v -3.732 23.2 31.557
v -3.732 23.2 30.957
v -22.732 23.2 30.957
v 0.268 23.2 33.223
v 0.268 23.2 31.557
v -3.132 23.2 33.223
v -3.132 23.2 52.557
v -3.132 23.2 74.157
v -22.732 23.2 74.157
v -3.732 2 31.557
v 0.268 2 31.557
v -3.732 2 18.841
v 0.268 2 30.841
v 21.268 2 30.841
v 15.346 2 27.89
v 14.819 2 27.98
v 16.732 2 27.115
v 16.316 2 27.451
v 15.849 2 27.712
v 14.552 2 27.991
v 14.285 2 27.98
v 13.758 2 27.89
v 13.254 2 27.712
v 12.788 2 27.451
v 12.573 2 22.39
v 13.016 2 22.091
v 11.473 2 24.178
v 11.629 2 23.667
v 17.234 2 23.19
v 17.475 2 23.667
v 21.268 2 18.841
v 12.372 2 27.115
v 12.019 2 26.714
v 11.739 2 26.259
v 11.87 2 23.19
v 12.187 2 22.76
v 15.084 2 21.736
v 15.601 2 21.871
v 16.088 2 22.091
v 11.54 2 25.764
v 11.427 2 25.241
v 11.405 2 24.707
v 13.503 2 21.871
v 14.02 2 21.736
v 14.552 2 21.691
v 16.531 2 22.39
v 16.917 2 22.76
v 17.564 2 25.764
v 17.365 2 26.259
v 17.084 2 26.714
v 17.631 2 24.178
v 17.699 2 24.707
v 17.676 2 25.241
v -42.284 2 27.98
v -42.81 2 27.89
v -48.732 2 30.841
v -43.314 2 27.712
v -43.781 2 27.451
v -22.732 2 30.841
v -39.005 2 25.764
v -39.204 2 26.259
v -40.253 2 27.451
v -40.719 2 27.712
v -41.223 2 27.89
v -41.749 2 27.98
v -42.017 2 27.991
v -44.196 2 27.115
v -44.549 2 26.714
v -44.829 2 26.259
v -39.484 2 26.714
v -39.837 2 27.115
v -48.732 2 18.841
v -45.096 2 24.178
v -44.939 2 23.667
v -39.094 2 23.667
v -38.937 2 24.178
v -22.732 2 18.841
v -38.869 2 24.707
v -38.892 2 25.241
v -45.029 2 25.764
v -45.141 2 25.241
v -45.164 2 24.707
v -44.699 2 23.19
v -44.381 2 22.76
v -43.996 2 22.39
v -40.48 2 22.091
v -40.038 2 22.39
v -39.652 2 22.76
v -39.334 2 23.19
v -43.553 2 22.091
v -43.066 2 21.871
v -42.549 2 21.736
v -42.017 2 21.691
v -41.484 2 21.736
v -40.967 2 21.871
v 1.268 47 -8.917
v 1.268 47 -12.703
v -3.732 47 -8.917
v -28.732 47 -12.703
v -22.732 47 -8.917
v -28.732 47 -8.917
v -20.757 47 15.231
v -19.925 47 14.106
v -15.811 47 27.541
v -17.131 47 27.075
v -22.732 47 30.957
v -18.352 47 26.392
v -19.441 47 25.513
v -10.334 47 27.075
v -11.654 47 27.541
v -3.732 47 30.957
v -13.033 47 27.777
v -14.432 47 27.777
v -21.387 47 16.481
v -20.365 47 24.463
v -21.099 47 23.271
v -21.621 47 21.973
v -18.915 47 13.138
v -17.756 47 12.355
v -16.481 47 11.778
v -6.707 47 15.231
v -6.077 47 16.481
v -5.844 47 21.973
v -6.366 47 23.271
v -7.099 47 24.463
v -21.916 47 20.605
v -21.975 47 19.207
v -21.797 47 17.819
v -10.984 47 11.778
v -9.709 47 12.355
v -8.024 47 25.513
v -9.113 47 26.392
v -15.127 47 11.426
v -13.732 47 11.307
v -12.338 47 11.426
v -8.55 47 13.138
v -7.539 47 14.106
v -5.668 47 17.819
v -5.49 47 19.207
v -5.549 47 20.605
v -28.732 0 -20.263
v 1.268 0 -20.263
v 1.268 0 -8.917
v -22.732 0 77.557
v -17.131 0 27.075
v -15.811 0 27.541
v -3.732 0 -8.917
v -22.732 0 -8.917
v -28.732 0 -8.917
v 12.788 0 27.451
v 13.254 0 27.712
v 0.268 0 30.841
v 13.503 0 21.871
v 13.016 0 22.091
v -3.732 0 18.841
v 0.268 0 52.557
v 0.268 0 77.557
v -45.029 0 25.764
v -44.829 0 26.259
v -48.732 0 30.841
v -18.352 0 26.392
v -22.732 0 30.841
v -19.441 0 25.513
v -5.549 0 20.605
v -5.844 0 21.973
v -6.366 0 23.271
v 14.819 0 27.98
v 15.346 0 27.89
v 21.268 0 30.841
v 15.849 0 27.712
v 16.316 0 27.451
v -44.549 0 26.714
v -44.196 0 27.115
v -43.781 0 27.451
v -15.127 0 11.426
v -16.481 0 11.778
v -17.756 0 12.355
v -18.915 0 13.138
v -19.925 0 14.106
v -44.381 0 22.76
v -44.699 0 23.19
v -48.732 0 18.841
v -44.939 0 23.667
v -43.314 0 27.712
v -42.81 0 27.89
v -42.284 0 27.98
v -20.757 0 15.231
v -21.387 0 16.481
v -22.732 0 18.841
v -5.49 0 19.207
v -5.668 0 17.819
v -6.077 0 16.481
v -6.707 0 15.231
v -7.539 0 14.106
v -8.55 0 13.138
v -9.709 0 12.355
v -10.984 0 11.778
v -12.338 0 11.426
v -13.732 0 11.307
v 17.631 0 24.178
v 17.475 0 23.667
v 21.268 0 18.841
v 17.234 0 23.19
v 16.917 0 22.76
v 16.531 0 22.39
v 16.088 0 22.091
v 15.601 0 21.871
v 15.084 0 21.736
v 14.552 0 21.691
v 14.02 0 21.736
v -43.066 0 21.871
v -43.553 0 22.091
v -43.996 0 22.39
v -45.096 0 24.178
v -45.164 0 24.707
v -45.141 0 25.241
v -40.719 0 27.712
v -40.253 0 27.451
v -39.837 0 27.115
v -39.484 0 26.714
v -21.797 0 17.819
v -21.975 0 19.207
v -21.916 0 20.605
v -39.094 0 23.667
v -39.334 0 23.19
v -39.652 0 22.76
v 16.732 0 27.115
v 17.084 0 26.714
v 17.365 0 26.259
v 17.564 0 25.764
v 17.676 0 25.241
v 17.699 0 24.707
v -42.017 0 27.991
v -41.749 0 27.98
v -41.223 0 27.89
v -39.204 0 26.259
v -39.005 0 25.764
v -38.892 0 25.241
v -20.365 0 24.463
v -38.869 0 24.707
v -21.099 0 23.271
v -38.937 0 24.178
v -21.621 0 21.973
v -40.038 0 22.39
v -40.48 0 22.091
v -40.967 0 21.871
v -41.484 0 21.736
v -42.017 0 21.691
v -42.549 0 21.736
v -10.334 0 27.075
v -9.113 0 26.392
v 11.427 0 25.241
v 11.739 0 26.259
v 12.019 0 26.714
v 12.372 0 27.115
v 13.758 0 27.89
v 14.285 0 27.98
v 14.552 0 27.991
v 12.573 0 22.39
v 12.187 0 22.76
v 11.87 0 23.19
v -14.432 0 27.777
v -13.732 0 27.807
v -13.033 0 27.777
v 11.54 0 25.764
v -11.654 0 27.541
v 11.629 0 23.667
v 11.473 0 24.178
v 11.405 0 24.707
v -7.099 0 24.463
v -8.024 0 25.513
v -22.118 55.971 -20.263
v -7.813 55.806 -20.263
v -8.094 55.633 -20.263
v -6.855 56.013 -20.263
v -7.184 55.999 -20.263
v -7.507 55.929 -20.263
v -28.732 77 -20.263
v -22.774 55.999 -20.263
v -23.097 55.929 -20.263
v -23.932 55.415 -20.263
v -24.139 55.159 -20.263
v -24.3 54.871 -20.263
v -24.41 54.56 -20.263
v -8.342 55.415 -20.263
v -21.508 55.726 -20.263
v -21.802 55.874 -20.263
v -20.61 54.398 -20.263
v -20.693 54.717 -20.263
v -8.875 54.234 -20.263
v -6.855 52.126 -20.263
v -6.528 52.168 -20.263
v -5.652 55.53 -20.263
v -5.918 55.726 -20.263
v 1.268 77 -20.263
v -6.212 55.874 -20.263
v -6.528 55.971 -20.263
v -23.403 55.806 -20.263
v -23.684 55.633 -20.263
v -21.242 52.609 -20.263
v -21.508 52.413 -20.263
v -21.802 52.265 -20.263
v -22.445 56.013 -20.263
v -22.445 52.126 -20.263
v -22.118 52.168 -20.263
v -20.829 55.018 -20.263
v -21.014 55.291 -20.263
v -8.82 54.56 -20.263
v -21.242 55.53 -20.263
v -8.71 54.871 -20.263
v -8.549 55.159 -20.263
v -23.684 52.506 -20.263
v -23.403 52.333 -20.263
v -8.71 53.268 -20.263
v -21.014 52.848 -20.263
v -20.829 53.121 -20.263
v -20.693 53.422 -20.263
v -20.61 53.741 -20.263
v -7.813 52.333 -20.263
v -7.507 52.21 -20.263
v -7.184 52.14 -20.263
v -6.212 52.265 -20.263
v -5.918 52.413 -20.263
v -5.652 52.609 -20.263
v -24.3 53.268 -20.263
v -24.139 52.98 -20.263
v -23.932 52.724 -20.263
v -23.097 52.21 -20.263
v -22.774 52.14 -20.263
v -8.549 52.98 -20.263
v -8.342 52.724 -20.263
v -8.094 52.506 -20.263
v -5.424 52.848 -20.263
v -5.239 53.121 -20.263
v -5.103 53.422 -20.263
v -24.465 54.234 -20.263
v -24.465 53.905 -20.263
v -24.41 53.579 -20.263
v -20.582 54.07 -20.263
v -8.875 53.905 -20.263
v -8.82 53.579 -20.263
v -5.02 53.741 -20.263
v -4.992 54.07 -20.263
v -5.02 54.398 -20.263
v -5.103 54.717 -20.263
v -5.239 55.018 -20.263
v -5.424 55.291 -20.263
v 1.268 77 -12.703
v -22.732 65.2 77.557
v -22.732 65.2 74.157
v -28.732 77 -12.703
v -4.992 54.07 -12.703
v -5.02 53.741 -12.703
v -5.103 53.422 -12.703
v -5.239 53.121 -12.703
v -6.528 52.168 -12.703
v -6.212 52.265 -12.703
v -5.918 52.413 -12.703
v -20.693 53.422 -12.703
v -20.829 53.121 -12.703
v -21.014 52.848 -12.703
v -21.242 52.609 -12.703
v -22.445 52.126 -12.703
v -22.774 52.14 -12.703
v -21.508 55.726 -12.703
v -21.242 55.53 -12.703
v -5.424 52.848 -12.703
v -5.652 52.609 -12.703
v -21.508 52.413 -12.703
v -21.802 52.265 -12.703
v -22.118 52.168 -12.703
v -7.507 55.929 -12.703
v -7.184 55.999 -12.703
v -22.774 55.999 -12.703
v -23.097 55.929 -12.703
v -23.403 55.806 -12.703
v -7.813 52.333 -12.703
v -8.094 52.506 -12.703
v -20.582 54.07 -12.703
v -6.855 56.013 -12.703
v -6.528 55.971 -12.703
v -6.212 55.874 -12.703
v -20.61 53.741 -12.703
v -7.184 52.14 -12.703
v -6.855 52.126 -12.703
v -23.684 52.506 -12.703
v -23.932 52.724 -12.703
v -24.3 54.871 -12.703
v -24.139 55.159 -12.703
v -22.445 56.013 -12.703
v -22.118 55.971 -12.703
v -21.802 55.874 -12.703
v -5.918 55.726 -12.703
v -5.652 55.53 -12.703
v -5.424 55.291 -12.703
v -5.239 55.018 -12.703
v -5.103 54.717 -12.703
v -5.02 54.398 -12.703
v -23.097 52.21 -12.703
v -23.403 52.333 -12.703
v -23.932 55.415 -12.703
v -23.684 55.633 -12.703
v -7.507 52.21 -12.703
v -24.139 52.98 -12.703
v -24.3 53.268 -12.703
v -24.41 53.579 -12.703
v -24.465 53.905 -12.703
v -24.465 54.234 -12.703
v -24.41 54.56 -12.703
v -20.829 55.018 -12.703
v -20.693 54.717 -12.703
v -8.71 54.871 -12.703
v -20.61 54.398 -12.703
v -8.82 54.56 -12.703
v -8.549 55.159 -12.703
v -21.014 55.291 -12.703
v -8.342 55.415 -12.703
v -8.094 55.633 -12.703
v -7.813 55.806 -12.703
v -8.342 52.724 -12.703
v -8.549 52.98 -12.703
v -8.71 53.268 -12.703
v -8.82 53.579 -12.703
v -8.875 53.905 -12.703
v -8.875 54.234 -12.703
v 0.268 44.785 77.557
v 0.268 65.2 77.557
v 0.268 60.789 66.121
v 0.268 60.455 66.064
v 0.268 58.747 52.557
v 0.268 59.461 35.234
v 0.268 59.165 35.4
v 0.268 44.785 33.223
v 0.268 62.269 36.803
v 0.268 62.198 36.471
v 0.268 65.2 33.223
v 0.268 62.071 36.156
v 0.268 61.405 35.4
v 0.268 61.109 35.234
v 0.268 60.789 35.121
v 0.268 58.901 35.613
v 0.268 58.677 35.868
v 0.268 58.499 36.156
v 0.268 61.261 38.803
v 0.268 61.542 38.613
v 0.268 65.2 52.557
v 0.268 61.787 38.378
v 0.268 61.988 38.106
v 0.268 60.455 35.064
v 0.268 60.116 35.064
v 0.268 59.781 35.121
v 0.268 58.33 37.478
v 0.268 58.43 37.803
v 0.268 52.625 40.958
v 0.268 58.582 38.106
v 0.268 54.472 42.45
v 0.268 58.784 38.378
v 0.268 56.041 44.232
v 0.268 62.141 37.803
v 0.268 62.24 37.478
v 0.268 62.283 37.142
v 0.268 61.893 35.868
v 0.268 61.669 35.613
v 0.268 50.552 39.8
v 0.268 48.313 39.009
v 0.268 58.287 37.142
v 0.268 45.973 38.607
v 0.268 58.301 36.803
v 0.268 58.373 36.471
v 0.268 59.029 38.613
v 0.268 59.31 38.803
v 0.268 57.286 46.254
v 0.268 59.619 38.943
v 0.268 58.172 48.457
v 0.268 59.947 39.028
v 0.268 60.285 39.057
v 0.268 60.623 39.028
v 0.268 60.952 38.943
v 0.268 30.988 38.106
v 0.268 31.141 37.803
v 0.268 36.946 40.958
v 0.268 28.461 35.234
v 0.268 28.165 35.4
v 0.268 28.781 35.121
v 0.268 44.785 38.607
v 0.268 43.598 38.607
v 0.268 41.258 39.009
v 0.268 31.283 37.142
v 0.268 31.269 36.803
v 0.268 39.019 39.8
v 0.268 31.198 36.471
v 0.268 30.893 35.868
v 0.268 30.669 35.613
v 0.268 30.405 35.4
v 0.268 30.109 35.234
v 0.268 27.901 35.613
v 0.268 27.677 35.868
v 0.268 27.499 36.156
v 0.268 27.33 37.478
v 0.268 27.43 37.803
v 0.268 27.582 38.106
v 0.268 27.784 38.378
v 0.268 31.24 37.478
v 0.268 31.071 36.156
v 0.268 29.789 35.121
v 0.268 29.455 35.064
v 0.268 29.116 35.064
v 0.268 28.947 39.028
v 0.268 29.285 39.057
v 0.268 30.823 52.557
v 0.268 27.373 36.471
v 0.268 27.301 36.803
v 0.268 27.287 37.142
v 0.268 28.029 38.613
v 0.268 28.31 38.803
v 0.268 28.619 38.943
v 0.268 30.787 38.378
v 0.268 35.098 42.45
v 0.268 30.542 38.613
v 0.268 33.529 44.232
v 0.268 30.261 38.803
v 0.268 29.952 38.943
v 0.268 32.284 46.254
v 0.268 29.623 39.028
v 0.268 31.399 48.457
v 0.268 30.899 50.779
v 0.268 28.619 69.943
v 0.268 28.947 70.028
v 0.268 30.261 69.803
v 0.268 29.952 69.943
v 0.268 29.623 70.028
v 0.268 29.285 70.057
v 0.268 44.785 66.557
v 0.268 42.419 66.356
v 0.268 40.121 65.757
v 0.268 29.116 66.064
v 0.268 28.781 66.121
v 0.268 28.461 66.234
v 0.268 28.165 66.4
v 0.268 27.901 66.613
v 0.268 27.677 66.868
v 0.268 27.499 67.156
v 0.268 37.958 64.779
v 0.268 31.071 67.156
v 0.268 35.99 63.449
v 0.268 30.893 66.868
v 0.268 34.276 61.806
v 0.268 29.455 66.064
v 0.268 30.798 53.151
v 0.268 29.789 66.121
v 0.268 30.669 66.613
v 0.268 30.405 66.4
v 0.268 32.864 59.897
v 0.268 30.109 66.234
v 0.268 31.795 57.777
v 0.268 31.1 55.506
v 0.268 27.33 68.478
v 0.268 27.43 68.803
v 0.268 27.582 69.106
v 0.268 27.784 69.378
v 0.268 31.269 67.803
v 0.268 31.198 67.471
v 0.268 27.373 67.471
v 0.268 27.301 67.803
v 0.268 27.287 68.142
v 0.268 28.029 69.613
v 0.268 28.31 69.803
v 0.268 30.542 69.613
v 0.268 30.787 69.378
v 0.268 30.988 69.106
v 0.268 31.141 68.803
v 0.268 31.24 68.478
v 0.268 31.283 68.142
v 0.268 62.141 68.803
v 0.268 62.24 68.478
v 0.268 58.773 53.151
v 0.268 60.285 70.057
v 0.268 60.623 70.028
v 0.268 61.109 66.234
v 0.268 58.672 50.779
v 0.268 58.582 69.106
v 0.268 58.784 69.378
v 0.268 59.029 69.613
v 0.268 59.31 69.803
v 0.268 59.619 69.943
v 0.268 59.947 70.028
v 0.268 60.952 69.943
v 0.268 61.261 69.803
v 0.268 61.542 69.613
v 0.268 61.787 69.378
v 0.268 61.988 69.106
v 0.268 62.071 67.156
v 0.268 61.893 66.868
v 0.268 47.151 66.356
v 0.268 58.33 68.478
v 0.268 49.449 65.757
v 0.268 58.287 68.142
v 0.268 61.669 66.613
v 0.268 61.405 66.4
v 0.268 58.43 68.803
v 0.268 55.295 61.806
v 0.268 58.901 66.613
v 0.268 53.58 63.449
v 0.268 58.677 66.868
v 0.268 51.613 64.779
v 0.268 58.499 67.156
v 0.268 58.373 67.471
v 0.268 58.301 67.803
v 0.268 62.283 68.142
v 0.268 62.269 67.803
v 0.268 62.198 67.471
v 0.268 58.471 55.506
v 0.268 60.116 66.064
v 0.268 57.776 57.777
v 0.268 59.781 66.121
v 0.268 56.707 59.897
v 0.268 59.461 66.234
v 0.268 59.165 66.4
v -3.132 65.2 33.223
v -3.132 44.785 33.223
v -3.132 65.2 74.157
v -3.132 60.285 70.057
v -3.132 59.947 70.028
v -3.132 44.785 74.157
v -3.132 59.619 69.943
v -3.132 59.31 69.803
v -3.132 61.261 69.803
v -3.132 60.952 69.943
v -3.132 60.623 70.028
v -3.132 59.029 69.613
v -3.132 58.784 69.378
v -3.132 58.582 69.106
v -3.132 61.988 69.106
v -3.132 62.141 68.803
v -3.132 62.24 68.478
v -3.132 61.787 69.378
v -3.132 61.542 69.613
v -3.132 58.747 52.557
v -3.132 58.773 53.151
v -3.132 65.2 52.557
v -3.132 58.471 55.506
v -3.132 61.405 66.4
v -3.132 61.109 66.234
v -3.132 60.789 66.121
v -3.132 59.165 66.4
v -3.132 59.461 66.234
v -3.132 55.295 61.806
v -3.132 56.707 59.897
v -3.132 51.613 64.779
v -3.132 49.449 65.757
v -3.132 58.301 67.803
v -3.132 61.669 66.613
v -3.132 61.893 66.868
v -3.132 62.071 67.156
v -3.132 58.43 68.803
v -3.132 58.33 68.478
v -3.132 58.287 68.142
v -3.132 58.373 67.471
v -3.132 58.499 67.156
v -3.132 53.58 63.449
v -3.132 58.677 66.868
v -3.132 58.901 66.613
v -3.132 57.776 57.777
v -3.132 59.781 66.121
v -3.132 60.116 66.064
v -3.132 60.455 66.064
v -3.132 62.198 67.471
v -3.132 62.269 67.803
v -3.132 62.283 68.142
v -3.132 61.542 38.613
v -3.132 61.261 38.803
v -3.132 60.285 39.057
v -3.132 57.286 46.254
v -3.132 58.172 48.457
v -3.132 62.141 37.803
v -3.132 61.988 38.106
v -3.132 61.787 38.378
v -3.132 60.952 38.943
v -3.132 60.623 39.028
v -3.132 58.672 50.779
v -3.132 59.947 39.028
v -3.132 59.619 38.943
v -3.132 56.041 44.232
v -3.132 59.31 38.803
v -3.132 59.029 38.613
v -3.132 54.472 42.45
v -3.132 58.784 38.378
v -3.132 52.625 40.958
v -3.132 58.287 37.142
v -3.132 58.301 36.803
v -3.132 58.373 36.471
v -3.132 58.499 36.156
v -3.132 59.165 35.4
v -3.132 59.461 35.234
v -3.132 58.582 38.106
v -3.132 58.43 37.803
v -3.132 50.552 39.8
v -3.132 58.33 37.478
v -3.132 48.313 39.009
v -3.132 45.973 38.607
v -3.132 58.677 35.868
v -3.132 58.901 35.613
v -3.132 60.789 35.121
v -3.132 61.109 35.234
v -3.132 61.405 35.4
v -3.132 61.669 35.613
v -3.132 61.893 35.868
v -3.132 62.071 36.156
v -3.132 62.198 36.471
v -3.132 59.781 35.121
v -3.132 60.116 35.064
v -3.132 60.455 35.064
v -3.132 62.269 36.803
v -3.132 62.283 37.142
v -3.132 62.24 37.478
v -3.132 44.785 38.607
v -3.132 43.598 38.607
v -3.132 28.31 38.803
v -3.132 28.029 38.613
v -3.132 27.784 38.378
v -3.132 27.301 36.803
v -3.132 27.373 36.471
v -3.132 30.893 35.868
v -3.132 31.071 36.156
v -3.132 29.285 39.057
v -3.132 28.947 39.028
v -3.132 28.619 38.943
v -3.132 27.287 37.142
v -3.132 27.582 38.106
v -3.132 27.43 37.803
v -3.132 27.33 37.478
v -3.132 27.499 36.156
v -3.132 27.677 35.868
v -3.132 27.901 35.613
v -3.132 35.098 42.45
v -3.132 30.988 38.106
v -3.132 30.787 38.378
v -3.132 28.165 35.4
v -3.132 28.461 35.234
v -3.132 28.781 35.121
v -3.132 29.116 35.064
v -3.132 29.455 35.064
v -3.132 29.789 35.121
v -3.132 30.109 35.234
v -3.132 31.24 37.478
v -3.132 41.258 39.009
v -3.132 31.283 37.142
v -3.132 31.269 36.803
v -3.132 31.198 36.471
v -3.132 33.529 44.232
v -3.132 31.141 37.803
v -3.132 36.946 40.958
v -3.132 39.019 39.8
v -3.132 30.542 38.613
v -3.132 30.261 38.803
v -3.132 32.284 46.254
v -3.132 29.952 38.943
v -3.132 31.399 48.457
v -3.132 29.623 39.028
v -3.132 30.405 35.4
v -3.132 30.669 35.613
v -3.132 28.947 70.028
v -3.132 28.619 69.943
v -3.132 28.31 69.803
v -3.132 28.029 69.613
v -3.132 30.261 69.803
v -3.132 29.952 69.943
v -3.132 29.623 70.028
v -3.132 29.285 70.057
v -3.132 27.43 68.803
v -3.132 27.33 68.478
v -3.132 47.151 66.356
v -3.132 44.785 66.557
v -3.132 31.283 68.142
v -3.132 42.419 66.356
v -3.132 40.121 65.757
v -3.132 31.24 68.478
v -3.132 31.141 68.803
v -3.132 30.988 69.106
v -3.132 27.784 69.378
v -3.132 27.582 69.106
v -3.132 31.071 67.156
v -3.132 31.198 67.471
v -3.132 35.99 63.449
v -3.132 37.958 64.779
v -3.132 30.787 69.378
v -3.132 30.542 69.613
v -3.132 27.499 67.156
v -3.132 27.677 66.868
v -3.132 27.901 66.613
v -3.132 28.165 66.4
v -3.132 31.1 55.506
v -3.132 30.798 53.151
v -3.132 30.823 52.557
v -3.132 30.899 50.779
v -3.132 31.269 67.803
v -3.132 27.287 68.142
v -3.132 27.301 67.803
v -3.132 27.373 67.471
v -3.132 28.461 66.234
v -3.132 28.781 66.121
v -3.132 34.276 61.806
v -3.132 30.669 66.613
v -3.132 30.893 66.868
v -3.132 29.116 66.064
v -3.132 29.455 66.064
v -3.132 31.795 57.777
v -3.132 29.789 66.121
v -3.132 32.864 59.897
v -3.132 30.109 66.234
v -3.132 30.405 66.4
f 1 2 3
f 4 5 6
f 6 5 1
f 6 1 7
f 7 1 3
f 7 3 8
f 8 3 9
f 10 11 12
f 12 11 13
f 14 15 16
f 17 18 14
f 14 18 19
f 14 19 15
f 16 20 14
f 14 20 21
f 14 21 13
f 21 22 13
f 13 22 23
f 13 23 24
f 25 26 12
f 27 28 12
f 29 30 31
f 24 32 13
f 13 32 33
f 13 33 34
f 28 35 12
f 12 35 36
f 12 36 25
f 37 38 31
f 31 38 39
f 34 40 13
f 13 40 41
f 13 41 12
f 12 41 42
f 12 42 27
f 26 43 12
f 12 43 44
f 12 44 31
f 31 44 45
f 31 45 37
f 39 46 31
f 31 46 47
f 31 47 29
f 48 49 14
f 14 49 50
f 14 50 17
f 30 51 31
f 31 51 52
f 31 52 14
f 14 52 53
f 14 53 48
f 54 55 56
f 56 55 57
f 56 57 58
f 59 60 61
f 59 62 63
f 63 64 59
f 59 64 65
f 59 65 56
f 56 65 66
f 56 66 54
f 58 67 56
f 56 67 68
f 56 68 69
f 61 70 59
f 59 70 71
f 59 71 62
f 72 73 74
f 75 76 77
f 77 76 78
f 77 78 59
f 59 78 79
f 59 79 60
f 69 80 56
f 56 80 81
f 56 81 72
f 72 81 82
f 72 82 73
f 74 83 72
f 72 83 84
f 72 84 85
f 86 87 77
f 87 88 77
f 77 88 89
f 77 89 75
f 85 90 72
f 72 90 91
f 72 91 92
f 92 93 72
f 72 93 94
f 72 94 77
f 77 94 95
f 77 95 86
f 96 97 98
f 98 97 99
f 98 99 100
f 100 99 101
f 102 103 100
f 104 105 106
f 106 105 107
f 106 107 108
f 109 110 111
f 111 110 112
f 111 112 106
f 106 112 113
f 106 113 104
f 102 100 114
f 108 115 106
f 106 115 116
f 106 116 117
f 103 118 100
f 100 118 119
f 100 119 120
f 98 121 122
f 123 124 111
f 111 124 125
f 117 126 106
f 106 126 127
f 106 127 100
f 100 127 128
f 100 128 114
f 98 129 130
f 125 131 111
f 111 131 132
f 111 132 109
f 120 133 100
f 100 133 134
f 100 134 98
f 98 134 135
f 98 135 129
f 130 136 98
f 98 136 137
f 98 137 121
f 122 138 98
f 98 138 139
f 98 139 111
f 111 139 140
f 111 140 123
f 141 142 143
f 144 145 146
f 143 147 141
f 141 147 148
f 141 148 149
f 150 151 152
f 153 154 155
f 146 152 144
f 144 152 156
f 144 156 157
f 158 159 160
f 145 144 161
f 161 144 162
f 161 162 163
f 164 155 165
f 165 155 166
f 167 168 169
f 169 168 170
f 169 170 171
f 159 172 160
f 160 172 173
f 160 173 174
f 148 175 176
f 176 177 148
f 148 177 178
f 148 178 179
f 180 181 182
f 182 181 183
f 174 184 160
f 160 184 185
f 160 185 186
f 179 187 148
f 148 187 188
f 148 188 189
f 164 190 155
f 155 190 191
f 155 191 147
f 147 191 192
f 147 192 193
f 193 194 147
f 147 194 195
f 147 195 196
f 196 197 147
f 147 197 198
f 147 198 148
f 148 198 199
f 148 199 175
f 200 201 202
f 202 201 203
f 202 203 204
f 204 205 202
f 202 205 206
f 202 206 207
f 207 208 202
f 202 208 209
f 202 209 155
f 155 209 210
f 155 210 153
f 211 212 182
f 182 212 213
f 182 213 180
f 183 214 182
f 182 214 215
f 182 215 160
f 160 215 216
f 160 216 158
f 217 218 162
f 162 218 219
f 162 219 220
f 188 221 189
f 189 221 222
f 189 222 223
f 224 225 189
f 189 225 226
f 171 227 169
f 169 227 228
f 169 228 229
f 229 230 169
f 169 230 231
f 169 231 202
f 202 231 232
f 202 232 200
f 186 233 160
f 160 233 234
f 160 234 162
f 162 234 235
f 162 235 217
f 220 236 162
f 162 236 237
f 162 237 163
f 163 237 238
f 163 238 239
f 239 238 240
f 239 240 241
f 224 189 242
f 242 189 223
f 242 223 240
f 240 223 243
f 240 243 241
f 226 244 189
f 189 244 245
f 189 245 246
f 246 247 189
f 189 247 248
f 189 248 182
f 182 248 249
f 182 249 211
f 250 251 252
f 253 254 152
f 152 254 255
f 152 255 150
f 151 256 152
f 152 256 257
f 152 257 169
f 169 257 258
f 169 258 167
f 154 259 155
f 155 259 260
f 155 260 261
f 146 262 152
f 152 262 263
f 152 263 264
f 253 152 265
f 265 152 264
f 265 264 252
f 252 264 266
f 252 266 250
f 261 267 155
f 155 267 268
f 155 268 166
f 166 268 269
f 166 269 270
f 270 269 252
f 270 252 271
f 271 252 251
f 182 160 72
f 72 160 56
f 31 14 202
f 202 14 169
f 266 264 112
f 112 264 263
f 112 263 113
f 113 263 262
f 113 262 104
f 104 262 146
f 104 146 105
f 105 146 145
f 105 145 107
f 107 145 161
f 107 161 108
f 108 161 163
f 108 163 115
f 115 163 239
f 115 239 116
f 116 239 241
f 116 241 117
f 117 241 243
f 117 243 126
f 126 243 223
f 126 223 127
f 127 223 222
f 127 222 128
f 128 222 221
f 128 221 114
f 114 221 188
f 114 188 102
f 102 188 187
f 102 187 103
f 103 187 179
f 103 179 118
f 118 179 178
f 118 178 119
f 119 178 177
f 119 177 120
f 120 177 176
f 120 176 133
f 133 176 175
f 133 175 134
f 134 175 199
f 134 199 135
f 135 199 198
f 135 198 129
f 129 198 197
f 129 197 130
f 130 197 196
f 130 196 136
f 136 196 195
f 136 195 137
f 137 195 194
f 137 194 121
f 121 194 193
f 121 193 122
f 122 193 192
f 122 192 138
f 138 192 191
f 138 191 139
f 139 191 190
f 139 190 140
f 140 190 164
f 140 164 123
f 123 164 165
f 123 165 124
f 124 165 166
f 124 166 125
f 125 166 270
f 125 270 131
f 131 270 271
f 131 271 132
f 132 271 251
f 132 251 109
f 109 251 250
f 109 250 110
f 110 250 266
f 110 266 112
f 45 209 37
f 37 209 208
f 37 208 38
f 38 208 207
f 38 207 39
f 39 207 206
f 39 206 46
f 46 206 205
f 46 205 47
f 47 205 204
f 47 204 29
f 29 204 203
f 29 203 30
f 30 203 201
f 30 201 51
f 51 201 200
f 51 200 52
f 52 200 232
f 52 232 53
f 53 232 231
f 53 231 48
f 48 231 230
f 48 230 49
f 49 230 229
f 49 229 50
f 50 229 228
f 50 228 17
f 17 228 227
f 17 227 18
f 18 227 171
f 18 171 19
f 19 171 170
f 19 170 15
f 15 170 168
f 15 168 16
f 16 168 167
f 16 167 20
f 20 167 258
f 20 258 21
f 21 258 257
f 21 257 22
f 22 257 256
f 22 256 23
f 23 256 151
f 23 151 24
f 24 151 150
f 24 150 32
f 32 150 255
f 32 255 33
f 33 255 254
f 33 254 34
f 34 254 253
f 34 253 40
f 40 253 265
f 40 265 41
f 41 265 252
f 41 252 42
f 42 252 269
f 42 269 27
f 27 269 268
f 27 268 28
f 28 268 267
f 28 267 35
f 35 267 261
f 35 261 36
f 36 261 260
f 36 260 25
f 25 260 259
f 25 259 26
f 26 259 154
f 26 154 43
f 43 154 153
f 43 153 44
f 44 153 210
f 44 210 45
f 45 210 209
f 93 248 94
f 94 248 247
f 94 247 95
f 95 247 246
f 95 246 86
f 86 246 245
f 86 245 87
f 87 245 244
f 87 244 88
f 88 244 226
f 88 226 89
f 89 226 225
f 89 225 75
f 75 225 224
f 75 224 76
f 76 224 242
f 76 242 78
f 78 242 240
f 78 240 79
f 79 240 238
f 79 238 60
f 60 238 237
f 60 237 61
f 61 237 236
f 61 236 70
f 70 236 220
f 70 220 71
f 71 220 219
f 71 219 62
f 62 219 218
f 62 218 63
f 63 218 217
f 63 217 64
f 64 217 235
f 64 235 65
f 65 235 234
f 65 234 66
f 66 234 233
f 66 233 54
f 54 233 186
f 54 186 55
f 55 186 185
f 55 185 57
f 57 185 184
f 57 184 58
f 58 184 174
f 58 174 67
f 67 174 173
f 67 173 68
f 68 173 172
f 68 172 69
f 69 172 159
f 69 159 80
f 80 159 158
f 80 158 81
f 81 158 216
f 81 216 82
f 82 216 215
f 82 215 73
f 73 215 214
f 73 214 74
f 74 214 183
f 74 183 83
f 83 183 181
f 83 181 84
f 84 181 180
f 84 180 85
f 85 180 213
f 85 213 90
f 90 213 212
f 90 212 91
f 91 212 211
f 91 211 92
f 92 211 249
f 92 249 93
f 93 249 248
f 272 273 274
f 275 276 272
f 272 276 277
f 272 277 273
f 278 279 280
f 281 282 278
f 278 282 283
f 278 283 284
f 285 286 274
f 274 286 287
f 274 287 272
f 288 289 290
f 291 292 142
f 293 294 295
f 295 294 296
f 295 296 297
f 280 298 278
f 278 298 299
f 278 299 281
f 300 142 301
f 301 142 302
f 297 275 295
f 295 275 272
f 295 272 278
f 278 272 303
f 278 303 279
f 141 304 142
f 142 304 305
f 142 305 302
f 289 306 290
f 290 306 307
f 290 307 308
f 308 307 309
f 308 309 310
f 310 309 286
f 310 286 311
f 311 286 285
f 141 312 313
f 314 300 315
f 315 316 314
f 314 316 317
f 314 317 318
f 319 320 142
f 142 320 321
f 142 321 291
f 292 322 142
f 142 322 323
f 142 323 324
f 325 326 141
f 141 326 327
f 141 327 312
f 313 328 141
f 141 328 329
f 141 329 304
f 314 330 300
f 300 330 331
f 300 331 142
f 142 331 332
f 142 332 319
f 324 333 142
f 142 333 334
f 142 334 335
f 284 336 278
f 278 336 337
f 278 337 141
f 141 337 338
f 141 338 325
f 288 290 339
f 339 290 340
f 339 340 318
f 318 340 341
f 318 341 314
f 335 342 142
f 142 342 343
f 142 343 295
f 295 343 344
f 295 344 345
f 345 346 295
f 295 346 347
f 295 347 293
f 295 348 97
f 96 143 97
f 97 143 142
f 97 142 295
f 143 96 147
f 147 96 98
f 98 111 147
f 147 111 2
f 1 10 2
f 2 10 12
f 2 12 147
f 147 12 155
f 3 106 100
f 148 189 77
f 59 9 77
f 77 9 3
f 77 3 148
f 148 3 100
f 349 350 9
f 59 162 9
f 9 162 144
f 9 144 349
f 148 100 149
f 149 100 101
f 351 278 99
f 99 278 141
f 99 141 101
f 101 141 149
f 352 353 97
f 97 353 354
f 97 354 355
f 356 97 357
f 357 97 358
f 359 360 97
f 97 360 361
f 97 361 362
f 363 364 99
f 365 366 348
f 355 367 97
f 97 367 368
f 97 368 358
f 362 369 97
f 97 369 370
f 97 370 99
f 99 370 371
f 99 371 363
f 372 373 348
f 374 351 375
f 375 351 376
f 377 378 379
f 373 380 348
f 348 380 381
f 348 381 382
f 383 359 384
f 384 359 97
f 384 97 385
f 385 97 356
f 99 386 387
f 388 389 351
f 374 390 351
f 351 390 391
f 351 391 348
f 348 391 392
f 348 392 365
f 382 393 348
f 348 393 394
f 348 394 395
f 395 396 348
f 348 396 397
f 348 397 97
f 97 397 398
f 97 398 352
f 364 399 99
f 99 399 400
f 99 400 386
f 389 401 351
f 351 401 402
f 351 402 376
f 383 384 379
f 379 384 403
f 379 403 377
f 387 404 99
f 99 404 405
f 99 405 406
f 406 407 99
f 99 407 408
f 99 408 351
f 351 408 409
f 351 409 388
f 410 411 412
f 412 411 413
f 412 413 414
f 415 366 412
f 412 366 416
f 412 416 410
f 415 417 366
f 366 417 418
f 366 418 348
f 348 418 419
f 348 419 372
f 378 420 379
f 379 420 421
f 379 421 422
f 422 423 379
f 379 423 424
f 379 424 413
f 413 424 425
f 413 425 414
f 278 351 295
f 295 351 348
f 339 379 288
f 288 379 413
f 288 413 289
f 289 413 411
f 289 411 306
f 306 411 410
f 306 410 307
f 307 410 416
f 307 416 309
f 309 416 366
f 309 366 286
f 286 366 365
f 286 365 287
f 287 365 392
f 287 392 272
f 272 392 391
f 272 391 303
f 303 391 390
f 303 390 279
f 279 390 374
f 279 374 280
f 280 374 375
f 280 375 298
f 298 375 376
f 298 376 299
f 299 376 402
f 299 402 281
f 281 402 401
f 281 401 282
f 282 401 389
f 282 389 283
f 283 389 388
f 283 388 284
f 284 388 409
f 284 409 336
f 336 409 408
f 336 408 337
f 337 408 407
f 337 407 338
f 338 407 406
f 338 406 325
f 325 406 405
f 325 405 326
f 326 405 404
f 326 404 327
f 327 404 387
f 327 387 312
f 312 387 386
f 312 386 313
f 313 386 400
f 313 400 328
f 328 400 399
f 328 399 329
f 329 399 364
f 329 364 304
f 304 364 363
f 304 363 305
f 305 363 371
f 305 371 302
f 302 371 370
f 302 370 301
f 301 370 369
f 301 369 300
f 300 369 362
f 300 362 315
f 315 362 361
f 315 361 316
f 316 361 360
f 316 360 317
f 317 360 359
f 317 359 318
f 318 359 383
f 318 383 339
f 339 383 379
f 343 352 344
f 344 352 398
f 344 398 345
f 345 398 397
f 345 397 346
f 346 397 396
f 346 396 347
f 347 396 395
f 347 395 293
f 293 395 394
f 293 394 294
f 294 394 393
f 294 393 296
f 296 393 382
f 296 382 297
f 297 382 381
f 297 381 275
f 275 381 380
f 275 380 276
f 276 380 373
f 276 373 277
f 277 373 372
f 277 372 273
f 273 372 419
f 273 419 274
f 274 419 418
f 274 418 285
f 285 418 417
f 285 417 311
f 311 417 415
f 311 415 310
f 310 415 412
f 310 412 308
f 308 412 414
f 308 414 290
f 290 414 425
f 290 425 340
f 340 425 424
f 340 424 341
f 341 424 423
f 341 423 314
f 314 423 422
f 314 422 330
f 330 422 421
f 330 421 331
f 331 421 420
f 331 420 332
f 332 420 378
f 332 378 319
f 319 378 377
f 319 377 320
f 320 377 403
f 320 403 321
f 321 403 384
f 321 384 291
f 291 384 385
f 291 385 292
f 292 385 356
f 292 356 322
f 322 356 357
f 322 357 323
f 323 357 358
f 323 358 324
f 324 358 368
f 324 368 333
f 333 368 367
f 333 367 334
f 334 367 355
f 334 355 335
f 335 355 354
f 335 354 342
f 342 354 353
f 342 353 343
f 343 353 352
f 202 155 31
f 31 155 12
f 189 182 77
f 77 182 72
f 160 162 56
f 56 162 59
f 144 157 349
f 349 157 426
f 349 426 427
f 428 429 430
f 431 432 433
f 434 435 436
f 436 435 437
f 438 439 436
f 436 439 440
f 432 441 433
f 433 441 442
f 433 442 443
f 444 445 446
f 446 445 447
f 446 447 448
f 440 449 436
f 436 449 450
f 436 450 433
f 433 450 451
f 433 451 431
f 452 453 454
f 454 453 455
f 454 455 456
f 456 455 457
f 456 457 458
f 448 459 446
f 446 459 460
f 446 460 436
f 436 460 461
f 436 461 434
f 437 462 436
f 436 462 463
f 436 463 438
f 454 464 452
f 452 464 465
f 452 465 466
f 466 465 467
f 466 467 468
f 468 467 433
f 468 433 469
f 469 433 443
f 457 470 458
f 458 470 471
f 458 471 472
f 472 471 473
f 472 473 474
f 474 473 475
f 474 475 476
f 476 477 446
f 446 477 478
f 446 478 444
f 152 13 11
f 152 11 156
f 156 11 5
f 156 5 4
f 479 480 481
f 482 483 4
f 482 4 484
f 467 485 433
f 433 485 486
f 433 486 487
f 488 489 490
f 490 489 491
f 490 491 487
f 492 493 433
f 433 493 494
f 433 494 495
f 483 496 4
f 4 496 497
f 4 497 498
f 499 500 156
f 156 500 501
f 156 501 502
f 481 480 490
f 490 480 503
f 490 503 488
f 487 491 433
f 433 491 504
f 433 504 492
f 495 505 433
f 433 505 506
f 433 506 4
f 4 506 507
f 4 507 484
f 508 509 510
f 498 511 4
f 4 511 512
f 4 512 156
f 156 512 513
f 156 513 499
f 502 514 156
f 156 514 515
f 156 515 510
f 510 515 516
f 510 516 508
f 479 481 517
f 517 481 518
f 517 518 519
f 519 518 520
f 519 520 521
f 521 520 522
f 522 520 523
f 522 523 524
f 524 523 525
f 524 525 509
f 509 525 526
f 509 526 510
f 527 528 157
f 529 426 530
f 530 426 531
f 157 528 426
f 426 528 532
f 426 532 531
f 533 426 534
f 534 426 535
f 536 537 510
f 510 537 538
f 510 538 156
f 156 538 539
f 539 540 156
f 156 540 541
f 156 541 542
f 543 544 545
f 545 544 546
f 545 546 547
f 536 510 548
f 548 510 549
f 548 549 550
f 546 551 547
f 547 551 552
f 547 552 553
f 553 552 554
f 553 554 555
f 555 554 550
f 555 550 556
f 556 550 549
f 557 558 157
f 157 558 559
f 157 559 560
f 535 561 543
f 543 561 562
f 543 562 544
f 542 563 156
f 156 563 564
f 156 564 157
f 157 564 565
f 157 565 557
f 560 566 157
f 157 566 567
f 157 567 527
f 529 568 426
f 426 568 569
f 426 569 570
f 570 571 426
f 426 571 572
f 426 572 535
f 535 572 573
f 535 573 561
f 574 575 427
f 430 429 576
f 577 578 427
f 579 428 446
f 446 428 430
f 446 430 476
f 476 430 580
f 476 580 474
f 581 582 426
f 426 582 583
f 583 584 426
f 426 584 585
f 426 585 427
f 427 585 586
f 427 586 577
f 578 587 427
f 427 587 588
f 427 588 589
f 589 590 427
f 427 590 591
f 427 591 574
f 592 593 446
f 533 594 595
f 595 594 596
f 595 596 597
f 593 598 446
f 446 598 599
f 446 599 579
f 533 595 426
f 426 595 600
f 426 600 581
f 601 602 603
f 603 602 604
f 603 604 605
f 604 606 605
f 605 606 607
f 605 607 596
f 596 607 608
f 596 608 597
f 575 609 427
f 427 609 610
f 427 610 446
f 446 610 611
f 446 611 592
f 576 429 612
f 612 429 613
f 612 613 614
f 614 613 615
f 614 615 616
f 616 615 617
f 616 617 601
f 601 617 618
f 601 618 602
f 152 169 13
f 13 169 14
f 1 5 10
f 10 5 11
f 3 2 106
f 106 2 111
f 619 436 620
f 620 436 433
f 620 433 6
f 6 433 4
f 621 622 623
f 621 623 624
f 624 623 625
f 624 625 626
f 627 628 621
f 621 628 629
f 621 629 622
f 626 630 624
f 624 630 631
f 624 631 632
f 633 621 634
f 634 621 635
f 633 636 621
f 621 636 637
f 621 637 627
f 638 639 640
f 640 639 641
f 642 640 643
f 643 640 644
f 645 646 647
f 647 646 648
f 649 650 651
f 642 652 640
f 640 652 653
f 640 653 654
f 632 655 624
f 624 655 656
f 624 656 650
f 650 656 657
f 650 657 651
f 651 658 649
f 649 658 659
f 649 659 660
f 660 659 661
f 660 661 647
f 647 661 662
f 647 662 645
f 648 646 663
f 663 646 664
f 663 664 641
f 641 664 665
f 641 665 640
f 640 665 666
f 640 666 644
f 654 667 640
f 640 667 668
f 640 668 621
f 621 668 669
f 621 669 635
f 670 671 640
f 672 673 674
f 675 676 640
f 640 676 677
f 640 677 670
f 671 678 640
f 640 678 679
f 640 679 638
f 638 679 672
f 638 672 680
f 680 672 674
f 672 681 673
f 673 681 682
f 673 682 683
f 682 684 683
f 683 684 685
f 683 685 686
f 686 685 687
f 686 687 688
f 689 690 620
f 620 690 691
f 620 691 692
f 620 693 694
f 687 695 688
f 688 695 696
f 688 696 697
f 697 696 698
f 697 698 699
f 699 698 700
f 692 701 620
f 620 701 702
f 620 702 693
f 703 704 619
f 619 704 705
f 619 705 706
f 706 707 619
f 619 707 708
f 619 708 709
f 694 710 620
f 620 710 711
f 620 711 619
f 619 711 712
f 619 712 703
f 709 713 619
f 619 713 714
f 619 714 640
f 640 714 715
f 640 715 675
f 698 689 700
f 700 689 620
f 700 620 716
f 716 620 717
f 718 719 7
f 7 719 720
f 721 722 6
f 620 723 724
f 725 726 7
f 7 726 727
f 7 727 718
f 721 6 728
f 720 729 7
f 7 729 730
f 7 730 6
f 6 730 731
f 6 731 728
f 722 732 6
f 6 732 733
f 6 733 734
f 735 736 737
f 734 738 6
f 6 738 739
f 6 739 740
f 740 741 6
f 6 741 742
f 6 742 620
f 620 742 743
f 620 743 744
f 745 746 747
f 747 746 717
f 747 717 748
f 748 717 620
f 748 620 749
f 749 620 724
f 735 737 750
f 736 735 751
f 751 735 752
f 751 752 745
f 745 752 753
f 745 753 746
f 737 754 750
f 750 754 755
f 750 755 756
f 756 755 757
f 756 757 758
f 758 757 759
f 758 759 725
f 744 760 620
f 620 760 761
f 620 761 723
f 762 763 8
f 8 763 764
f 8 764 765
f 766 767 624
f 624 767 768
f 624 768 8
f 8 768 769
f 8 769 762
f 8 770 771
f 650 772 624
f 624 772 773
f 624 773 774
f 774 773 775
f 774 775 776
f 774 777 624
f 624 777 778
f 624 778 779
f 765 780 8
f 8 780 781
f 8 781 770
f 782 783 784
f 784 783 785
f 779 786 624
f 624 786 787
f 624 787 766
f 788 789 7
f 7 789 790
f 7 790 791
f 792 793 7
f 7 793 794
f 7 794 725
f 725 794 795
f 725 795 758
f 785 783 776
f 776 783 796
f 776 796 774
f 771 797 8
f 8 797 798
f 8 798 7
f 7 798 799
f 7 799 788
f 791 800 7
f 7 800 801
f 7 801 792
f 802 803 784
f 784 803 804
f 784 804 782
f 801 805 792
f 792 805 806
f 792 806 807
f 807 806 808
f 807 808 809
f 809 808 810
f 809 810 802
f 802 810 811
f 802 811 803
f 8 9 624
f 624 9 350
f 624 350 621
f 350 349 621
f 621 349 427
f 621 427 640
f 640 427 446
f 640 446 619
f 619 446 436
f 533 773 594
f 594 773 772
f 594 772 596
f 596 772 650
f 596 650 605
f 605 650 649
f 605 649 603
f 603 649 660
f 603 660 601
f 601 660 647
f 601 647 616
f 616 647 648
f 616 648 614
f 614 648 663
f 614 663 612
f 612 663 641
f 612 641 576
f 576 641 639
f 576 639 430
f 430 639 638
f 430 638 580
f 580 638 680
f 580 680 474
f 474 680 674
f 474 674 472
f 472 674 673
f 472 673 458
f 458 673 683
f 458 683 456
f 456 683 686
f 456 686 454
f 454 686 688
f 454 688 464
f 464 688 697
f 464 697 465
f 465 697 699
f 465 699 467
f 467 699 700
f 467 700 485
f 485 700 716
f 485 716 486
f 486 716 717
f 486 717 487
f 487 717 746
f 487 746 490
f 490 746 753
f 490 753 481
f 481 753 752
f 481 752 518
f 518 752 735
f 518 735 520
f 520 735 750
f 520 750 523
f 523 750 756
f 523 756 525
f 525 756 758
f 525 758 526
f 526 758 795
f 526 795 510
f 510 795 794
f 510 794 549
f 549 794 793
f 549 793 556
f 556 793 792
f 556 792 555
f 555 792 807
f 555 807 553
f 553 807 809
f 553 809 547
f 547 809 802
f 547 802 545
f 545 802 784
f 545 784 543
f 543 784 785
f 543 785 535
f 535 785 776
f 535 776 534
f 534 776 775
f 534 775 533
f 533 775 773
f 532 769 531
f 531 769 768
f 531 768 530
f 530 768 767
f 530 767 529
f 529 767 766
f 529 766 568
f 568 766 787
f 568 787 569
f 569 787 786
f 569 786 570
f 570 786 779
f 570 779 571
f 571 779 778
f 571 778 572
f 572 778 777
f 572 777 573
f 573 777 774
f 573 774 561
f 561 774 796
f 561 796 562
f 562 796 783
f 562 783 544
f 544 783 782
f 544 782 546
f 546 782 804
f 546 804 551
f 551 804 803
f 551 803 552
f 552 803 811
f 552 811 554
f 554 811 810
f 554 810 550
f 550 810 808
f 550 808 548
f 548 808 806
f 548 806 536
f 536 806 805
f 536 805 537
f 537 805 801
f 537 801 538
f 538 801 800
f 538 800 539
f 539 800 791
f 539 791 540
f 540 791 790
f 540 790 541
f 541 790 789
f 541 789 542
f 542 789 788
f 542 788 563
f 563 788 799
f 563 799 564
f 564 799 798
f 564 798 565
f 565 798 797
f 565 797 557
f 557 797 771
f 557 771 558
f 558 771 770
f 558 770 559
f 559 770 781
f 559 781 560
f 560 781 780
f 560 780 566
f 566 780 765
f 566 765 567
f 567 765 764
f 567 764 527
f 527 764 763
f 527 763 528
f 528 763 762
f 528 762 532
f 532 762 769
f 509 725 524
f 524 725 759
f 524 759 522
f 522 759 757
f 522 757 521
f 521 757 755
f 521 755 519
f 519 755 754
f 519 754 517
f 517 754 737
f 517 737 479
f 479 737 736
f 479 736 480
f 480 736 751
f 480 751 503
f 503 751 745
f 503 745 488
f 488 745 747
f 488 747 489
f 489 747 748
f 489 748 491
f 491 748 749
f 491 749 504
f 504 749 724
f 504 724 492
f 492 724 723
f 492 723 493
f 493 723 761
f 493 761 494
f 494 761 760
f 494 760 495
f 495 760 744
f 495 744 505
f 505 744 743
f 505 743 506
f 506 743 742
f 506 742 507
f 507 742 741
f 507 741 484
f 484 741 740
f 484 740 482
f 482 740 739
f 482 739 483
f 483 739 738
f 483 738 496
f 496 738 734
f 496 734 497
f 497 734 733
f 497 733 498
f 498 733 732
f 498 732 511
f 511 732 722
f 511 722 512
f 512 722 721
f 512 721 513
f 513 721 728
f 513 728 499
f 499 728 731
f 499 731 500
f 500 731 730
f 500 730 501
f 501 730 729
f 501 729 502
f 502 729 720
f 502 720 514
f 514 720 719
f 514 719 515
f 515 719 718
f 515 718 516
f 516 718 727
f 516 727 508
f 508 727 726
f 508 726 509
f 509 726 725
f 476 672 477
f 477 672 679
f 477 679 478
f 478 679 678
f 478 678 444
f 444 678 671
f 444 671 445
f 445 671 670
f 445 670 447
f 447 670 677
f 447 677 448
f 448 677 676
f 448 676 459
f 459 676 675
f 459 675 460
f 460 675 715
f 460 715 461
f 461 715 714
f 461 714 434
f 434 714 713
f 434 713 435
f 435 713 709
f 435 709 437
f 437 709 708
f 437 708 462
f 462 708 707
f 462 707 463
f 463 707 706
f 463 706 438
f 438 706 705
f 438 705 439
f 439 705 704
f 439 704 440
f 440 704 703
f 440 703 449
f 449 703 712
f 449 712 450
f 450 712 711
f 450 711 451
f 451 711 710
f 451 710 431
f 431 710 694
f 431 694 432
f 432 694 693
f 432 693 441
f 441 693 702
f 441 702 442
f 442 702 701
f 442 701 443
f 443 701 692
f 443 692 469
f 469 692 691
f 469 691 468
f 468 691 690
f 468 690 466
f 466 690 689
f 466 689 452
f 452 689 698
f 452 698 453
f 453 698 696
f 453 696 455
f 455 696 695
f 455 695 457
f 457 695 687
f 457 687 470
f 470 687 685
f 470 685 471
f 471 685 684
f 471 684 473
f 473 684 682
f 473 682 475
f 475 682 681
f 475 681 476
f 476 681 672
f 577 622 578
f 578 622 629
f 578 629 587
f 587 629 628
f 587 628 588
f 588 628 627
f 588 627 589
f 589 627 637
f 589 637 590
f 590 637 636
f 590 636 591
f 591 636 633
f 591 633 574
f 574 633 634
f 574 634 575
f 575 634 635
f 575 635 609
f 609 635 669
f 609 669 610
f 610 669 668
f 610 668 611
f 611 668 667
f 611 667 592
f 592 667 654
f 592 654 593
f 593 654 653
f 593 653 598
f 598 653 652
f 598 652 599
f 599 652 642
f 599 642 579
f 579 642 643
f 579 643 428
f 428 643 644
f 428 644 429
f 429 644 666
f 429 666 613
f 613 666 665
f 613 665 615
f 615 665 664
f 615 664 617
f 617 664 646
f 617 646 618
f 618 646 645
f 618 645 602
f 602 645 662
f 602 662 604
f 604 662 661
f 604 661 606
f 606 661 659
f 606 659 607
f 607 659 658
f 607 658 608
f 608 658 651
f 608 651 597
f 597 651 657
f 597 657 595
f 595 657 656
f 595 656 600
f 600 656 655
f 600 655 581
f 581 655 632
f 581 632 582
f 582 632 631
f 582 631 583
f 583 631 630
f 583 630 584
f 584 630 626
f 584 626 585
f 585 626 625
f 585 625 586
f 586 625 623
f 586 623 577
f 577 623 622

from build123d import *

# Parameters (mm, degrees)
SKETCH1_R           = 3.15
SKETCH1_R_2         = 8.25
BOSS_EXTRUDE1_DEPTH = 2
BOSS_EXTRUDE2_DEPTH = 45
SKETCH3_R           = 8.25
CUT_EXTRUDE1_DEPTH  = 104.812694214
SKETCH4_W           = 30
SKETCH4_H           = 7.560001502
BOSS_EXTRUDE3_DEPTH = 30
SKETCH5_R           = 1.945
CUT_EXTRUDE2_DEPTH  = 130.889649736
CUT_EXTRUDE3_DEPTH  = 120.90444312
SKETCH10_W          = 23
SKETCH10_H          = 46
BOSS_EXTRUDE4_DEPTH = 21.2
SKETCH11_W          = 22.207892016
SKETCH11_H          = 46.715728752
CUT_EXTRUDE4_DEPTH  = 119.384613888
SKETCH12_W          = 0.6
SKETCH12_H          = 23.8
CUT_EXTRUDE5_DEPTH  = 118.813722566
BOSS_EXTRUDE5_DEPTH = 42
SKETCH14_R          = 14
CUT_EXTRUDE6_DEPTH  = 119.420577709
SKETCH15_R          = 2
CUT_EXTRUDE7_DEPTH  = 119.420577709


with BuildPart() as part:
    # Sketch1 → Boss-Extrude1 (new body)
    with BuildSketch(Plane(origin=(0, 0, 0), x_dir=(1, 0, 0), z_dir=(0, 1, 0))):
        Polygon((-48.732366868, 38.443096859), (21.267633132, 38.443096859), (21.267633132, -31.556903141), (21.267633132, -79.857572586), (-48.732366868, -79.857572586), (-48.732366868, -31.556903141), align=None)
        with Locations((-42.016638116, 31.727368106)):
            Circle(SKETCH1_R, mode=Mode.SUBTRACT)
        with Locations((14.551904379, 31.727368106)):
            Circle(SKETCH1_R, mode=Mode.SUBTRACT)
        with Locations((14.551904379, -24.841174389)):
            Circle(SKETCH1_R, mode=Mode.SUBTRACT)
        with Locations((-42.016638116, -24.841174389)):
            Circle(SKETCH1_R, mode=Mode.SUBTRACT)
        with Locations((-13.732366868, -19.556903141)):
            Circle(SKETCH1_R_2, mode=Mode.SUBTRACT)
    extrude(amount=BOSS_EXTRUDE1_DEPTH)

    # Sketch2 → Boss-Extrude2 (add)
    with BuildSketch(Plane(origin=(0, 2, 0), x_dir=(1, 0, 0), z_dir=(0, 1, 0))):
        Polygon((-28.732366868, 20.263098361), (1.267633132, 20.263098361), (1.267633132, 8.916503275), (-3.732366868, 8.916503275), (-3.732366868, -31.556903141), (-22.732366868, -31.556903141), (-22.732366868, 5.987652995), (-22.732366868, 8.916503275), (-28.732366868, 8.916503275), (-28.732366868, 9.103096859), align=None)
    extrude(amount=BOSS_EXTRUDE2_DEPTH)

    # Sketch3 → Cut-Extrude1 (cut, through all)
    with BuildSketch(Plane.XZ.offset(-2)):
        with Locations((-13.732366868, 19.556903141)):
            Circle(SKETCH3_R)
    extrude(amount=-CUT_EXTRUDE1_DEPTH, mode=Mode.SUBTRACT)

    # Sketch4 → Boss-Extrude3 (add)
    with BuildSketch(Plane(origin=(0, 47, 0), x_dir=(1, 0, 0), z_dir=(0, 1, 0))):
        with Locations((-13.732366868, 16.48309761)):
            Rectangle(SKETCH4_W, SKETCH4_H)
    extrude(amount=BOSS_EXTRUDE3_DEPTH)

    # Sketch5 → Cut-Extrude2 (cut, through all)
    with BuildSketch(Plane.XY.offset(-12.703096859)):
        with Locations((-22.527366868, 54.069519899)):
            Circle(SKETCH5_R)
        with Locations((-6.937366868, 54.069519899)):
            Circle(SKETCH5_R)
    extrude(amount=-CUT_EXTRUDE2_DEPTH, mode=Mode.SUBTRACT)

    # Sketch6 → Cut-Extrude3 (cut, through all)
    with BuildSketch(Plane(origin=(0, 2, 0), x_dir=(1, 0, 0), z_dir=(0, 1, 0))):
        Polygon((-48.732366868, -18.841174389), (-22.732366868, -18.841174389), (-22.732366868, 8.916503275), (-28.732366868, 8.916503275), (-28.732366868, 12.703096859), (-28.732366868, 20.263098361), (1.267633132, 20.263098361), (1.267633132, 8.916503275), (-3.732366868, 8.916503275), (-3.732366868, -18.841174389), (21.267633132, -18.841174389), (21.267633132, 38.443096859), (-48.732366868, 38.443096859), align=None)
        Polygon((-48.732366868, -30.841174389), (-44.940258884, -30.841174389), (-44.940258884, -77.556903141), (0.267633132, -77.556903141), (0.267633132, -30.841174389), (21.267633132, -30.841174389), (21.267633132, -79.857572586), (-48.732366868, -79.857572586), align=None)
    extrude(amount=-CUT_EXTRUDE3_DEPTH, mode=Mode.SUBTRACT)

    # Sketch10 → Boss-Extrude4 (add)
    with BuildSketch(Plane(origin=(0, 2, 0), x_dir=(1, 0, 0), z_dir=(0, 1, 0))):
        with Locations((-11.232366868, -54.556903141)):
            Rectangle(SKETCH10_W, SKETCH10_H)
    extrude(amount=BOSS_EXTRUDE4_DEPTH)

    # Sketch11 → Cut-Extrude4 (cut, through all)
    with BuildSketch(Plane(origin=(0, 2, 0), x_dir=(1, 0, 0), z_dir=(0, 1, 0))):
        with Locations((-33.836312876, -54.199038765)):
            Rectangle(SKETCH11_W, SKETCH11_H)
    extrude(amount=-CUT_EXTRUDE4_DEPTH, mode=Mode.SUBTRACT)

    # Sketch12 → Cut-Extrude5 (cut, through all)
    with BuildSketch(Plane.ZY.offset(22.732366868)):
        with Locations((31.256903141, 35.1)):
            Rectangle(SKETCH12_W, SKETCH12_H)
    extrude(amount=-CUT_EXTRUDE5_DEPTH, mode=Mode.SUBTRACT)

    # Sketch13 → Boss-Extrude5 (add)
    with BuildSketch(Plane(origin=(0, 23.2, 0), x_dir=(1, 0, 0), z_dir=(0, 1, 0))):
        Polygon((0.267633132, -77.556903141), (-22.732366868, -77.556903141), (-22.732366868, -74.156903141), (-3.132366868, -74.156903141), (-3.132366868, -33.22347783), (0.267633132, -33.22347783), (0.267633132, -74.156903141), align=None)
    extrude(amount=BOSS_EXTRUDE5_DEPTH)

    # Sketch14 → Cut-Extrude6 (cut, through all)
    with BuildSketch(Plane.ZY.offset(3.132366868)):
        with Locations((52.556903141, 44.785296811)):
            Circle(SKETCH14_R)
    extrude(amount=-CUT_EXTRUDE6_DEPTH, mode=Mode.SUBTRACT)

    # Sketch15 → Cut-Extrude7 (cut, through all)
    with BuildSketch(Plane.ZY.offset(3.132366868)):
        with Locations((68.056903141, 29.285296811)):
            Circle(SKETCH15_R)
        with Locations((37.056903141, 29.285296811)):
            Circle(SKETCH15_R)
        with Locations((37.056903141, 60.285296811)):
            Circle(SKETCH15_R)
        with Locations((68.056903141, 60.285296811)):
            Circle(SKETCH15_R)
    extrude(amount=-CUT_EXTRUDE7_DEPTH, mode=Mode.SUBTRACT)


solid = part.part
